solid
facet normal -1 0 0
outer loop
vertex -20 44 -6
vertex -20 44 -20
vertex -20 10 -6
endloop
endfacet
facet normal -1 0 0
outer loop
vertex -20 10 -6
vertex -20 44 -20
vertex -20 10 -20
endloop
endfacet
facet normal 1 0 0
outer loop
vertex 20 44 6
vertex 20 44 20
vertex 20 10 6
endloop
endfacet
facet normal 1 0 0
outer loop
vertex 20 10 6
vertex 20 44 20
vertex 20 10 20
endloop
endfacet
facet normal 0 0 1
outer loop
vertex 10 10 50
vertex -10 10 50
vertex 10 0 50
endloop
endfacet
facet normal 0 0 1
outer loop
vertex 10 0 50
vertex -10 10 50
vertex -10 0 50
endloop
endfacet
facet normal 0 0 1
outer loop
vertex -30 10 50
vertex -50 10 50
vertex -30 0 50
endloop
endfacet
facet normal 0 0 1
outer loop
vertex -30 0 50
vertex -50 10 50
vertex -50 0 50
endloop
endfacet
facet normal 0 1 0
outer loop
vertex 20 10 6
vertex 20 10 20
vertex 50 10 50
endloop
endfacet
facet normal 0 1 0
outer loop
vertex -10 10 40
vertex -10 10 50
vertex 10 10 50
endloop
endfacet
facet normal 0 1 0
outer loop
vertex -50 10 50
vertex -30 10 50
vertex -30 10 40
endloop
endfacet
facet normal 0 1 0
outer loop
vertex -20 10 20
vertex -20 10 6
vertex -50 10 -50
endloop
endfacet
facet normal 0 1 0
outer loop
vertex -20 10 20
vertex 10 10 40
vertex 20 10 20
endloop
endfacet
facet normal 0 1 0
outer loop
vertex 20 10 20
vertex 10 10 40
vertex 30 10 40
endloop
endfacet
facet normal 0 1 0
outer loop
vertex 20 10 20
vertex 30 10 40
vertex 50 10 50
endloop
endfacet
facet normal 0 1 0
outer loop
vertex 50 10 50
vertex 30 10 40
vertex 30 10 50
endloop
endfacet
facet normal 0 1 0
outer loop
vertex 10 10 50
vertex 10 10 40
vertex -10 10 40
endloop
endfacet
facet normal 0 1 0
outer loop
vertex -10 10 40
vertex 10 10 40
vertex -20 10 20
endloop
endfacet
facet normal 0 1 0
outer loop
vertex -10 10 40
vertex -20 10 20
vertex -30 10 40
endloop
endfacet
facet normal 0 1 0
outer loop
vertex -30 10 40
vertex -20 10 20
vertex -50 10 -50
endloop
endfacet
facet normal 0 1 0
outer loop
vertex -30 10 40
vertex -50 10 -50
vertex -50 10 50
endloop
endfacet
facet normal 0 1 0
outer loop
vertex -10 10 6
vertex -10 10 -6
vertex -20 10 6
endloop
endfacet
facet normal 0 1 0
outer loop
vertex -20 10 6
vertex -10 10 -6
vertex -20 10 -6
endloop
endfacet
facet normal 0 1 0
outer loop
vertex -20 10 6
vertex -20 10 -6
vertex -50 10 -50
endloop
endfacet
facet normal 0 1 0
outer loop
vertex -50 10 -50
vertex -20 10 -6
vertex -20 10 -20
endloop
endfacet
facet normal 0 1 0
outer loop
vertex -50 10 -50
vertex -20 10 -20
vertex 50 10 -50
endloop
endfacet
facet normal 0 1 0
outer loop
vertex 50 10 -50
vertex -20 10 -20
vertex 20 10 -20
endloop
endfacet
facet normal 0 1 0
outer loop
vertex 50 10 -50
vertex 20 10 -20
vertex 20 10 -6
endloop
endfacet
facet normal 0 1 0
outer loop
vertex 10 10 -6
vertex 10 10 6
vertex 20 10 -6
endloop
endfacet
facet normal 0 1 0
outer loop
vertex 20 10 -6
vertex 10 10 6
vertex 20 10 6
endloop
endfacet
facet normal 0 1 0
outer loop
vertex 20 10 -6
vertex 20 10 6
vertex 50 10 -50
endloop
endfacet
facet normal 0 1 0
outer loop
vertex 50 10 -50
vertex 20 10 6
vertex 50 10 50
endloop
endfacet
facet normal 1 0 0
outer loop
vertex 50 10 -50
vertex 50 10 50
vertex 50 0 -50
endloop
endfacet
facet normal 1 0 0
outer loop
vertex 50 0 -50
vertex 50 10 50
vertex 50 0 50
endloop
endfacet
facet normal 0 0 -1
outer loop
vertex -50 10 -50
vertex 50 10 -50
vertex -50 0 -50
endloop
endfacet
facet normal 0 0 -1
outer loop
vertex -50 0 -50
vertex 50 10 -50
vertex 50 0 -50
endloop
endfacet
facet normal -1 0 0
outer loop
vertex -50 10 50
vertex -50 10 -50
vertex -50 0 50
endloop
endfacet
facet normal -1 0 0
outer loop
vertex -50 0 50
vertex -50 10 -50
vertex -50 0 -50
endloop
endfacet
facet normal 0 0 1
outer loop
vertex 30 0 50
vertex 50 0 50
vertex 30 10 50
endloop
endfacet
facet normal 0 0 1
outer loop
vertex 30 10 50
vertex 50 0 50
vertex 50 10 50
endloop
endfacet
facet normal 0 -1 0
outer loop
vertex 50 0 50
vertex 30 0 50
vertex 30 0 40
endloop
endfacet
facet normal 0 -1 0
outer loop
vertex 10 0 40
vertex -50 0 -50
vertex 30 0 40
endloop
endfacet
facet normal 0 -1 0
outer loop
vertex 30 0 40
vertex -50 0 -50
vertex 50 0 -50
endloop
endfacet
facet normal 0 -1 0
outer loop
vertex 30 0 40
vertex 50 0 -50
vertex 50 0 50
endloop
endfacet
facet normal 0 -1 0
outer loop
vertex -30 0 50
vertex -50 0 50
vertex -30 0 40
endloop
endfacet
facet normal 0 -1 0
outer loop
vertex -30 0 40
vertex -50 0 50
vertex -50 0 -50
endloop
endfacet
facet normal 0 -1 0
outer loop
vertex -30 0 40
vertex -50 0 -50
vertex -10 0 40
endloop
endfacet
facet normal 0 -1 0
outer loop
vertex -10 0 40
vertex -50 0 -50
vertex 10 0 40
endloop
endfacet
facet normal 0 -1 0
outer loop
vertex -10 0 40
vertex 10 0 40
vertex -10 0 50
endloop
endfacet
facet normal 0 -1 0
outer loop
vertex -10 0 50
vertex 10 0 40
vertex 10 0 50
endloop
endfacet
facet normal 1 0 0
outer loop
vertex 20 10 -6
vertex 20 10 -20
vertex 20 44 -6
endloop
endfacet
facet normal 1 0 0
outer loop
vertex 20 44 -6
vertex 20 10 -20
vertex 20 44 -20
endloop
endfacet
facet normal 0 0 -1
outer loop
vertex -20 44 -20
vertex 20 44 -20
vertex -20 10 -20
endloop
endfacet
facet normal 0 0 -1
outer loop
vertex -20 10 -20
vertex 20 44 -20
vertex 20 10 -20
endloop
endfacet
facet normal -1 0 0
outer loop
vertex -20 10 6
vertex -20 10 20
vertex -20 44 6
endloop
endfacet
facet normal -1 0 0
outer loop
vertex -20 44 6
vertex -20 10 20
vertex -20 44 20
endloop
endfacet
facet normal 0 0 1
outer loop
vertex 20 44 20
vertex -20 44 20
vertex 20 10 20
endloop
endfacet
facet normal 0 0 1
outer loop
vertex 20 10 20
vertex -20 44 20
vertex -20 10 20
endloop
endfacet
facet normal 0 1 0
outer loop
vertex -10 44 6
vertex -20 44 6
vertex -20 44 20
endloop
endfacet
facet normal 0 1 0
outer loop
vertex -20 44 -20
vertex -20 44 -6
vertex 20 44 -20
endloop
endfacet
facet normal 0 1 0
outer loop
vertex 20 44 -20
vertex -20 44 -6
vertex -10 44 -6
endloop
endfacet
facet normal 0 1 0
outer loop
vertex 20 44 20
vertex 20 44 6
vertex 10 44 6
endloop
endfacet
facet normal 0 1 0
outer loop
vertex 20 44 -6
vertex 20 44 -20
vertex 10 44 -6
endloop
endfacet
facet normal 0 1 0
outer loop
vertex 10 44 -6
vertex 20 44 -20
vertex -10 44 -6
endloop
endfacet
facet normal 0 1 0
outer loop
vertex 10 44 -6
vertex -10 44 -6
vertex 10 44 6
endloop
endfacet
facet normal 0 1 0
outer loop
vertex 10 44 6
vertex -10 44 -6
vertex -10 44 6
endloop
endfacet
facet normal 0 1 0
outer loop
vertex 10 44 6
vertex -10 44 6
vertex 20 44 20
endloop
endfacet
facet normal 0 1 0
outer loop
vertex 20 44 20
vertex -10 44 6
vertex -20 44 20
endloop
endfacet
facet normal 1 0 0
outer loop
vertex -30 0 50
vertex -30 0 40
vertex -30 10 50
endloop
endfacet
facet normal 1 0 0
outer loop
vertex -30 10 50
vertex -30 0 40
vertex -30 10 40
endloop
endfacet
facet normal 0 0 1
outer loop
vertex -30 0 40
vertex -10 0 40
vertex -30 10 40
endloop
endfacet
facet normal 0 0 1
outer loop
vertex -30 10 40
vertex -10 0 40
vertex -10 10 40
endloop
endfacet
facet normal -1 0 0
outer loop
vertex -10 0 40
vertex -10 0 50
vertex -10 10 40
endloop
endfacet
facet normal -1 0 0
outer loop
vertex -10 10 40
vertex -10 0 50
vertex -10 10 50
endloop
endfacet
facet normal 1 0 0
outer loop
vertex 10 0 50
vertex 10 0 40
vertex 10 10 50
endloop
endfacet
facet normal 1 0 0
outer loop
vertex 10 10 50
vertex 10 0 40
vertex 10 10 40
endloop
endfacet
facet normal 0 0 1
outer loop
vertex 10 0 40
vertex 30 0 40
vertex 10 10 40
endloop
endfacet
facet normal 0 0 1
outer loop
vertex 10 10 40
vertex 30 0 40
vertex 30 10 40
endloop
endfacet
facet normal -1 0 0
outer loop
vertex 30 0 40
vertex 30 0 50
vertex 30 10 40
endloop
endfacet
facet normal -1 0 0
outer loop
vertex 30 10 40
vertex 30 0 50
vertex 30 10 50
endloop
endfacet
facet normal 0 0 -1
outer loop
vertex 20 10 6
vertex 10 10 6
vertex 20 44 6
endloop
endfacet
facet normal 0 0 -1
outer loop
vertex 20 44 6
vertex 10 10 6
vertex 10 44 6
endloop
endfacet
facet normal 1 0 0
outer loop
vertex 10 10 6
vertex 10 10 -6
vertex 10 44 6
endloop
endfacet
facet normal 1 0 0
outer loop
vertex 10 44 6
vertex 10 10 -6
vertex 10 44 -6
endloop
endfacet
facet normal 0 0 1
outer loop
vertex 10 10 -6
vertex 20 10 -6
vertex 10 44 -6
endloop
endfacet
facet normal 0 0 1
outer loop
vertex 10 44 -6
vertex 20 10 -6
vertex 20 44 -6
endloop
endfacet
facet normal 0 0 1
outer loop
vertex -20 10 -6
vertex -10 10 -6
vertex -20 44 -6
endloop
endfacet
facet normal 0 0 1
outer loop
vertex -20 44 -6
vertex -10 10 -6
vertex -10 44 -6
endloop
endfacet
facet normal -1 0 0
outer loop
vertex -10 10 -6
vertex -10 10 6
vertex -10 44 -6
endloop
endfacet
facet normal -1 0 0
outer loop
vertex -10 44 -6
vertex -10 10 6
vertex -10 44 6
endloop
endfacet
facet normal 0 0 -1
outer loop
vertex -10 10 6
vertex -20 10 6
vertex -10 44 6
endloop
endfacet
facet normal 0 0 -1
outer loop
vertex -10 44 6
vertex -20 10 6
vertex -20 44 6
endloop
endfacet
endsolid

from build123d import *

# Parameters (mm, degrees)
SKETCH1_W           = 100
SKETCH1_H           = 100
BOSS_EXTRUDE1_DEPTH = 10
SKETCH6_W           = 40
SKETCH6_H           = 40
BOSS_EXTRUDE3_DEPTH = 34
SKETCH8_W           = 20
SKETCH8_H           = 10
CUT_EXTRUDE1_DEPTH  = 10
SKETCH9_W           = 20
SKETCH9_H           = 10
CUT_EXTRUDE2_DEPTH  = 10
SKETCH10_W          = 10
SKETCH10_H          = 12
CUT_EXTRUDE3_DEPTH  = 34


with BuildPart() as part:
    # Sketch1 → Boss-Extrude1 (new body)
    with BuildSketch(Plane(origin=(0, 0, 0), x_dir=(1, 0, 0), z_dir=(0, 1, 0))):
        Rectangle(SKETCH1_W, SKETCH1_H)
    extrude(amount=BOSS_EXTRUDE1_DEPTH)

    # Sketch6 → Boss-Extrude3 (add)
    with BuildSketch(Plane(origin=(0, 10, 0), x_dir=(1, 0, 0), z_dir=(0, 1, 0))):
        Rectangle(SKETCH6_W, SKETCH6_H)
    extrude(amount=BOSS_EXTRUDE3_DEPTH)

    # Sketch8 → Cut-Extrude1 (cut)
    with BuildSketch(Plane(origin=(0, 10, 0), x_dir=(1, 0, 0), z_dir=(0, 1, 0))):
        with Locations((-20, -45)):
            Rectangle(SKETCH8_W, SKETCH8_H)
    extrude(amount=-CUT_EXTRUDE1_DEPTH, mode=Mode.SUBTRACT)

    # Sketch9 → Cut-Extrude2 (cut)
    with BuildSketch(Plane(origin=(0, 10, 0), x_dir=(1, 0, 0), z_dir=(0, 1, 0))):
        with Locations((20, -45)):
            Rectangle(SKETCH9_W, SKETCH9_H)
    extrude(amount=-CUT_EXTRUDE2_DEPTH, mode=Mode.SUBTRACT)

    # Sketch10 → Cut-Extrude3 (cut)
    with BuildSketch(Plane(origin=(0, 44, 0), x_dir=(1, 0, 0), z_dir=(0, 1, 0))):
        with Locations((15, 0)):
            Rectangle(SKETCH10_W, SKETCH10_H)
        with Locations((-15, 0)):
            Rectangle(SKETCH10_W, SKETCH10_H)
    extrude(amount=-CUT_EXTRUDE3_DEPTH, mode=Mode.SUBTRACT)


solid = part.part
